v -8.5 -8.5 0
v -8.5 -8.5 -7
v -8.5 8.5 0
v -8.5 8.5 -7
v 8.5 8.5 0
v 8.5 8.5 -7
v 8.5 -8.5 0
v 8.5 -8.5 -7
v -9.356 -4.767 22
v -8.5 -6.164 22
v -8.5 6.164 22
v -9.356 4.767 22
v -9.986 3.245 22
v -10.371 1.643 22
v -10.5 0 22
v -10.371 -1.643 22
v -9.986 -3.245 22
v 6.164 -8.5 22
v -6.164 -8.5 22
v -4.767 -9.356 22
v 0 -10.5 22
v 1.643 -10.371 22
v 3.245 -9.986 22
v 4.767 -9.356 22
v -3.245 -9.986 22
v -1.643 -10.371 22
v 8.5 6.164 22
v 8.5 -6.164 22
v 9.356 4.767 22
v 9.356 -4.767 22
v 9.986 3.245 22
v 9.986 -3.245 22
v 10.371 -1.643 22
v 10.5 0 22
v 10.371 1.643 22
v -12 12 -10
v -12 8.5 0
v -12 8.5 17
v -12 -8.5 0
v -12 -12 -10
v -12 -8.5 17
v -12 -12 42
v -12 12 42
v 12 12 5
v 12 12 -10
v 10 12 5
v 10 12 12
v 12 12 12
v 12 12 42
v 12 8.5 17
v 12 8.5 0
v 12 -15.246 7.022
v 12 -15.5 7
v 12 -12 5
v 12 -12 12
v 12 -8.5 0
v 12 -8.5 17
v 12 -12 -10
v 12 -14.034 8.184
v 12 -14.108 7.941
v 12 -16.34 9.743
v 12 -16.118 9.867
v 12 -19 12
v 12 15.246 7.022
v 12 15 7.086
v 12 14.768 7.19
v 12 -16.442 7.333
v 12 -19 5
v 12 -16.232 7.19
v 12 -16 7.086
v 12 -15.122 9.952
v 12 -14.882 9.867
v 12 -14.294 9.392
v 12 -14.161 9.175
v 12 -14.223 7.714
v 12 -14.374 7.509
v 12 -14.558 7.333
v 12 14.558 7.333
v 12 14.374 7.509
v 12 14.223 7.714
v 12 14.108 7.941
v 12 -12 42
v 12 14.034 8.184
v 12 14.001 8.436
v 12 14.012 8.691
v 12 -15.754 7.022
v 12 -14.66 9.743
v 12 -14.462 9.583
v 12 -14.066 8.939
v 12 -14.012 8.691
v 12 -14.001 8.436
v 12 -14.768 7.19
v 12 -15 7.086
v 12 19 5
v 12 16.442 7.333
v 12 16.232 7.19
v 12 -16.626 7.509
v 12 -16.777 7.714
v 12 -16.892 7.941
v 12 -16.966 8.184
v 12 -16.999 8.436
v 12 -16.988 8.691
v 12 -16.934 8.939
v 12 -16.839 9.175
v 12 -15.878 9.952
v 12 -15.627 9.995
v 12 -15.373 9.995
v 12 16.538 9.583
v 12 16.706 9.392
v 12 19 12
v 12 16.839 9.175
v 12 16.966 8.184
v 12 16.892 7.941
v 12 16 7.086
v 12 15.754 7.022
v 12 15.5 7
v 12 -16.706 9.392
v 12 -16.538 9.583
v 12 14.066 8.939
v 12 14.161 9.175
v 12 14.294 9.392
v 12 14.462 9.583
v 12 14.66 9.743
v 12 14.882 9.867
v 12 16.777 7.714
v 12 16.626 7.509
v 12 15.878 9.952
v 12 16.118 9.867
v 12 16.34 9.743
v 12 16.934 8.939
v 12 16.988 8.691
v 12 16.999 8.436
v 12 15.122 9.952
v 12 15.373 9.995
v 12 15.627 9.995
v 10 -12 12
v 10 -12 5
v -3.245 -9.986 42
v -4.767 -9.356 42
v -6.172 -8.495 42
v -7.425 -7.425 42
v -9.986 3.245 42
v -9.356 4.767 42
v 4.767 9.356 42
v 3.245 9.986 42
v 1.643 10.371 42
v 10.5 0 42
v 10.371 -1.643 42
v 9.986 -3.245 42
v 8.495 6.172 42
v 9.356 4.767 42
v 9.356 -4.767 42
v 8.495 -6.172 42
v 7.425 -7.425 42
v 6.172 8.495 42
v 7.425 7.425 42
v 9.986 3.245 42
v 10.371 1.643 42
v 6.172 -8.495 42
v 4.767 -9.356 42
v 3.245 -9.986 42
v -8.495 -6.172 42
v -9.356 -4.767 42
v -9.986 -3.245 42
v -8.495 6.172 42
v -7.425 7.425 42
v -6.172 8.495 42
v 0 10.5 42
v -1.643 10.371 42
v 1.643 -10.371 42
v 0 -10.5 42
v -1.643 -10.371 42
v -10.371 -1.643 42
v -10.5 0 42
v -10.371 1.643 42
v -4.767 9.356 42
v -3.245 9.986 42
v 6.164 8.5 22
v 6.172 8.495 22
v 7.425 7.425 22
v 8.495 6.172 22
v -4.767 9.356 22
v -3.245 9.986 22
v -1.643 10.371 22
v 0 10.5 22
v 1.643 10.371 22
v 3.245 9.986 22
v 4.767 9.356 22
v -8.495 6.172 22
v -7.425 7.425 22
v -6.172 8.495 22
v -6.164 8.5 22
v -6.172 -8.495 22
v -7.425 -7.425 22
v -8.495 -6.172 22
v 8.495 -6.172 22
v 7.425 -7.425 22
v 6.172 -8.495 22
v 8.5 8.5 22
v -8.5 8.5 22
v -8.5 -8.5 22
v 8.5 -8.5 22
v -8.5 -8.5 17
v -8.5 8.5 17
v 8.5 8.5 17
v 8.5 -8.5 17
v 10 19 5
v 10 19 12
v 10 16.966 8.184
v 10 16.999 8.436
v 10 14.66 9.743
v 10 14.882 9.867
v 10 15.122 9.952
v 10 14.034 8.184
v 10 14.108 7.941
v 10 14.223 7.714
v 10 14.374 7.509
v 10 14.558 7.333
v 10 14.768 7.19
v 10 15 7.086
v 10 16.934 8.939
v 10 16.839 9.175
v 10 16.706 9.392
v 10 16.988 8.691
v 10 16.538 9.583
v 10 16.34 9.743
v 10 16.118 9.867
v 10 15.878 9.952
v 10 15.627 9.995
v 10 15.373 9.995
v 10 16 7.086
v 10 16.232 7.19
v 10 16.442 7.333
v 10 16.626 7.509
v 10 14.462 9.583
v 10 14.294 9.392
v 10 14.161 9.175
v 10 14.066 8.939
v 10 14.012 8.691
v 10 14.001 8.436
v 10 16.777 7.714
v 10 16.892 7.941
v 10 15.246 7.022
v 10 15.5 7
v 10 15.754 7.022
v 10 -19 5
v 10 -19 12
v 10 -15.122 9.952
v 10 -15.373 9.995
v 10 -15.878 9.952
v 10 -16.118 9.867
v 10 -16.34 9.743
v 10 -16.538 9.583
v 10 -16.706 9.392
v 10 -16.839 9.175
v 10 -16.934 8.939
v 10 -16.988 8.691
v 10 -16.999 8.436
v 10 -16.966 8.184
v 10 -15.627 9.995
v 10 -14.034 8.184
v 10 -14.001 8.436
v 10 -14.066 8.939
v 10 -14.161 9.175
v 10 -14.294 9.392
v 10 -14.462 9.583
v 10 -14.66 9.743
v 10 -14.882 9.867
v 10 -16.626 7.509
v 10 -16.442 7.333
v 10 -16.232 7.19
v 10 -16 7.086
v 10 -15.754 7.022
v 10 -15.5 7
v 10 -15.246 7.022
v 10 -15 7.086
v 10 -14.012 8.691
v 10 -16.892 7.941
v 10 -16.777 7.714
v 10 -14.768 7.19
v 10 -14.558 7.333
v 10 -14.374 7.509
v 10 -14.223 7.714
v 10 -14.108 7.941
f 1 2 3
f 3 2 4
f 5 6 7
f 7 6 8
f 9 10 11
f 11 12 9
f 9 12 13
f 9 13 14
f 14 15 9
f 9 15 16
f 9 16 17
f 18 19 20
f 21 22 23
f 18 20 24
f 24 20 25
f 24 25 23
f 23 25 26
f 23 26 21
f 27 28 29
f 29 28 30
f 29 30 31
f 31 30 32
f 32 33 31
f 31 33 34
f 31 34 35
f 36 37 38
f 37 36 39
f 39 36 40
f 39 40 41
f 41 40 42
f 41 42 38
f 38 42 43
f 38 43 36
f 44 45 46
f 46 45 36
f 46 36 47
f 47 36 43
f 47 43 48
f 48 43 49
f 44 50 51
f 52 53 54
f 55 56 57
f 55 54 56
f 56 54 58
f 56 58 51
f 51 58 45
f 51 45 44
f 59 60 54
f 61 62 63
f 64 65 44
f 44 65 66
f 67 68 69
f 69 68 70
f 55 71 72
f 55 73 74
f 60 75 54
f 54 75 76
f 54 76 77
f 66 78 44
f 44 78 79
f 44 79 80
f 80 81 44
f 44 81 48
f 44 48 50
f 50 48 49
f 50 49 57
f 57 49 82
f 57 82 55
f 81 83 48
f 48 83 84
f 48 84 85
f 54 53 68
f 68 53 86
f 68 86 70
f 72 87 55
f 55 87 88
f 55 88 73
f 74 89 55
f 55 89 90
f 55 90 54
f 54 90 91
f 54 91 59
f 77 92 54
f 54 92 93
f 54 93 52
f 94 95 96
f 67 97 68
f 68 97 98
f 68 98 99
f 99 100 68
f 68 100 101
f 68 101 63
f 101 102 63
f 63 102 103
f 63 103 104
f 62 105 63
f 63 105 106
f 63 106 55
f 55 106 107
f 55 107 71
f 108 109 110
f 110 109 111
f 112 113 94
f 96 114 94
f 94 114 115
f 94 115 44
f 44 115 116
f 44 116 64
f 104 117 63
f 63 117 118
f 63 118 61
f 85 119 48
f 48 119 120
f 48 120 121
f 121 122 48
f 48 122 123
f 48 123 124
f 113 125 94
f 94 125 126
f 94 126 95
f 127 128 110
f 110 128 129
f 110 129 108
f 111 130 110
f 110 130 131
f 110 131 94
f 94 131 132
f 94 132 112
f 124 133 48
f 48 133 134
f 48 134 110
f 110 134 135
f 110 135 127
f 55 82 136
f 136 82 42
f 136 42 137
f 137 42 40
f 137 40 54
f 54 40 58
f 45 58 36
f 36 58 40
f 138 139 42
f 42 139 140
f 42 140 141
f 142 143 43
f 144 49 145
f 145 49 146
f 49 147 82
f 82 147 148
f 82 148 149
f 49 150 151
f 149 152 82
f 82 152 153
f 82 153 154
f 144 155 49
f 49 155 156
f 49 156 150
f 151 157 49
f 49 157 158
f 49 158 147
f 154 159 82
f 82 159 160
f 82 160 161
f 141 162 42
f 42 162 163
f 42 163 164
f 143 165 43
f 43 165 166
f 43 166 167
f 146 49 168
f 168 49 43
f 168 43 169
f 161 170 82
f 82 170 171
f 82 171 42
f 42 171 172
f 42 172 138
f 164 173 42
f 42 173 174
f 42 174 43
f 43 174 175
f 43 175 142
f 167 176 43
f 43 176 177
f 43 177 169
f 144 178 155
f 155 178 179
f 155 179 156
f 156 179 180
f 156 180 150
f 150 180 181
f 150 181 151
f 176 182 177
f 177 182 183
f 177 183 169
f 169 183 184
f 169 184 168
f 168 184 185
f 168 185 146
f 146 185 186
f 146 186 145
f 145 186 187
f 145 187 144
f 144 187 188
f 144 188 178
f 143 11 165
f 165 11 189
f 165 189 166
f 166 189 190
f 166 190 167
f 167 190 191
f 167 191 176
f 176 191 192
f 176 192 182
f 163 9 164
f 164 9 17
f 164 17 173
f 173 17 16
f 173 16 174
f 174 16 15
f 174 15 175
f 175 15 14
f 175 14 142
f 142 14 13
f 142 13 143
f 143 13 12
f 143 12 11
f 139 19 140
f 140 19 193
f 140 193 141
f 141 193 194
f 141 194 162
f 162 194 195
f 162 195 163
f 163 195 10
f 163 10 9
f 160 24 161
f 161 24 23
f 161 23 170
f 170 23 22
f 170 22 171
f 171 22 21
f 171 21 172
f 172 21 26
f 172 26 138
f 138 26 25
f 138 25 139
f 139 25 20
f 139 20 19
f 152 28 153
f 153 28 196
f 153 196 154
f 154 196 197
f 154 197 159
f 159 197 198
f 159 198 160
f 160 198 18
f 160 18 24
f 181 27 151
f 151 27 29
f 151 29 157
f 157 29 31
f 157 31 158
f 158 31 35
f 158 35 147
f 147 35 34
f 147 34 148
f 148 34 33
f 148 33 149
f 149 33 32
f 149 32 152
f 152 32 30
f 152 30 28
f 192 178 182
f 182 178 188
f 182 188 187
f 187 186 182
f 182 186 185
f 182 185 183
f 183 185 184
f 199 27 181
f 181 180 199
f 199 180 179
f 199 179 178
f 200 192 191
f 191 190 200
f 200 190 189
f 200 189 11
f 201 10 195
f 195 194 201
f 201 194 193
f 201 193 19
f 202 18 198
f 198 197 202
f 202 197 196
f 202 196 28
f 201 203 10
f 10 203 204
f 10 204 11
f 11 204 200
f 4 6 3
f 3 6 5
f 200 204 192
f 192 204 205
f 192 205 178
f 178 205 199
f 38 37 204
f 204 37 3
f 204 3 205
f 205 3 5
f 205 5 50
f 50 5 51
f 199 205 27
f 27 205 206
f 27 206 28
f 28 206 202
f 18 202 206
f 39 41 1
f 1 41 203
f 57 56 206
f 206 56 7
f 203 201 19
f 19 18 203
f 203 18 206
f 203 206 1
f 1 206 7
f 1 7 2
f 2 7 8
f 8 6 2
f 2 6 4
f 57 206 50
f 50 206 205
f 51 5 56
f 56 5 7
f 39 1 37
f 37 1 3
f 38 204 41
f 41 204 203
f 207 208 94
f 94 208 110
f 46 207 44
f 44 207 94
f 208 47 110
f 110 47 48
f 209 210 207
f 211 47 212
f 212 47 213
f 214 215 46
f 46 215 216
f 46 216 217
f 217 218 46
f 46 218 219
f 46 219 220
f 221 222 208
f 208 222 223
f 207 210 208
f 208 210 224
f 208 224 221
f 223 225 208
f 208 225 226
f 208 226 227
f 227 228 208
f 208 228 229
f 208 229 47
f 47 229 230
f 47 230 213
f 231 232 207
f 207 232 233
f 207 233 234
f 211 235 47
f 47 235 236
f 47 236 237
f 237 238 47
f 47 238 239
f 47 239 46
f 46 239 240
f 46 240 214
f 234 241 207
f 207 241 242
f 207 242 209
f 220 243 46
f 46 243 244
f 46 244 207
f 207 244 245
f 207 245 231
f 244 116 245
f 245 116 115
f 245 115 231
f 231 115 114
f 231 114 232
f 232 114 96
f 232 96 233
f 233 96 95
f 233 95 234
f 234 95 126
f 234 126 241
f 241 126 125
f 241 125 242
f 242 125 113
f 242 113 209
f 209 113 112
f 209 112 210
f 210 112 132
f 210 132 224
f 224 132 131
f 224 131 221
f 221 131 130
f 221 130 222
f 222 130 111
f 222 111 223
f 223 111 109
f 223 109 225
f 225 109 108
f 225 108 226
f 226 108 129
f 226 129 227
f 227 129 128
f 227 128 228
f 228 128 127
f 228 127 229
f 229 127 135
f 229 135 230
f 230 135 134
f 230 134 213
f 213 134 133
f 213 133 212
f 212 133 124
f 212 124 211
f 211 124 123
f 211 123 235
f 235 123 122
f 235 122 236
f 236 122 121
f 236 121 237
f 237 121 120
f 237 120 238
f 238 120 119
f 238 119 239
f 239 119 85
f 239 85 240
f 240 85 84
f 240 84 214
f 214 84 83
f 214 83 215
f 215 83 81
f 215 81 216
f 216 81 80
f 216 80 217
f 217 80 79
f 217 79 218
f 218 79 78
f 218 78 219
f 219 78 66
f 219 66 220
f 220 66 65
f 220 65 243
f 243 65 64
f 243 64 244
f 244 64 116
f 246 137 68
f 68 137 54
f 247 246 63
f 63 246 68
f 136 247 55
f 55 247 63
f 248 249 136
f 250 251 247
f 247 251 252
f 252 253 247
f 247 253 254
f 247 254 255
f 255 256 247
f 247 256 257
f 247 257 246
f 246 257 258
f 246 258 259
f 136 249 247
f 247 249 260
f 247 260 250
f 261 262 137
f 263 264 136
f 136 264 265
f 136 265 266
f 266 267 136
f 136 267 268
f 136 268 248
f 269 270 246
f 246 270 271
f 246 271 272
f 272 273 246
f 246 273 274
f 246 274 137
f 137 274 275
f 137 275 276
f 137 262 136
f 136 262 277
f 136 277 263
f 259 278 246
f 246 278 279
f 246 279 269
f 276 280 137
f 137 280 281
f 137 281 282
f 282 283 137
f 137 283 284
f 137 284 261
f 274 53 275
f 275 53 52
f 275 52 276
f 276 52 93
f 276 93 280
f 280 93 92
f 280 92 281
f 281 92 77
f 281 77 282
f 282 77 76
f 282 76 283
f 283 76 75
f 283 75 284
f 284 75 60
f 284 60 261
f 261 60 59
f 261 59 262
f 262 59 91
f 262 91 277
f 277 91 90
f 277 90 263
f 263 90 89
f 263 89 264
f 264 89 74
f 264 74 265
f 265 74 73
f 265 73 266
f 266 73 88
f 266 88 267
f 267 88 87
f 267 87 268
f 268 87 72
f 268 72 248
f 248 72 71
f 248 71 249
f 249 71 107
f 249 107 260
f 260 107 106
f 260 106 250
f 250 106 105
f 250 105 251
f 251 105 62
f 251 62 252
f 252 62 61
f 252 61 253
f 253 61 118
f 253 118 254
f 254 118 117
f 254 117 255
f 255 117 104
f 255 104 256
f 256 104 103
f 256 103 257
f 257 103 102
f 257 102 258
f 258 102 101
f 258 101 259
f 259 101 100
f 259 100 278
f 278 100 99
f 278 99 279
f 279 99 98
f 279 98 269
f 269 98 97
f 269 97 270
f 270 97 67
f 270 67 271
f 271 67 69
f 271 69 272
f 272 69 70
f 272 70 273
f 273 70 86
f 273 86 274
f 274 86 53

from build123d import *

# Parameters (mm, degrees)
EXTRUDE_1_DEPTH      = 42
EXTRUDE_1_DEPTH_BACK = 10
SKETCH_1_W           = 24
SKETCH_1_H           = 24
SKETCH_3_R           = 10.5
CUT_EXTRUDE_1_DEPTH  = 20
SKETCH_4_W           = 17
SKETCH_4_H           = 17
CUT_EXTRUDE_2_DEPTH  = 29
SKETCH_5_W           = 17
SKETCH_5_H           = 17
CUT_EXTRUDE_5_DEPTH  = 50.839743178
SKETCH_6_W           = 7
SKETCH_6_H           = 7
SKETCH_6_R           = 1.5
EXTRUDE_2_DEPTH      = 2


with BuildPart() as part:
    # Эскиз1 → Бобышка-Вытянуть1 (new, two sides: drawn at the far end of the back side and taken through both)
    with BuildSketch(Plane.XY.offset(-EXTRUDE_1_DEPTH_BACK)):
        Rectangle(SKETCH_1_W, SKETCH_1_H)
    extrude(amount=EXTRUDE_1_DEPTH + EXTRUDE_1_DEPTH_BACK)

    # Эскиз3 → Вырез-Вытянуть1 (cut)
    with BuildSketch(Plane.XY.offset(42)):
        Circle(SKETCH_3_R)
    extrude(amount=-CUT_EXTRUDE_1_DEPTH, mode=Mode.SUBTRACT)

    # Эскиз4 → Вырез-Вытянуть2 (cut)
    with BuildSketch(Plane.XY.offset(22)):
        Rectangle(SKETCH_4_W, SKETCH_4_H)
    extrude(amount=-CUT_EXTRUDE_2_DEPTH, mode=Mode.SUBTRACT)

    # Эскиз5 → Вырез-Вытянуть5 (cut, through all)
    with BuildSketch(Plane(origin=(12, 0, 0), x_dir=(0, 0, -1), z_dir=(1, 0, 0))):
        with Locations((-8.5, 0)):
            Rectangle(SKETCH_5_W, SKETCH_5_H)
    extrude(amount=-CUT_EXTRUDE_5_DEPTH, mode=Mode.SUBTRACT)

    # Эскиз6 → Бобышка-Вытянуть2 (add)
    # profile 1 of 2: a face of its own
    with BuildSketch(Plane(origin=(12, 0, 0), x_dir=(0, 0, -1), z_dir=(1, 0, 0))):
        with Locations((-8.5, 15.5)):
            Rectangle(SKETCH_6_W, SKETCH_6_H)
        with Locations((-8.5, 15.5)):
            Circle(SKETCH_6_R, mode=Mode.SUBTRACT)
    # profile 2 of 2: a face of its own
    with BuildSketch(Plane(origin=(12, 0, 0), x_dir=(0, 0, -1), z_dir=(1, 0, 0))):
        with Locations((-8.5, -15.5)):
            Rectangle(SKETCH_6_W, SKETCH_6_H)
        with Locations((-8.5, -15.5)):
            Circle(SKETCH_6_R, mode=Mode.SUBTRACT)
    extrude(amount=-EXTRUDE_2_DEPTH)


solid = part.part
